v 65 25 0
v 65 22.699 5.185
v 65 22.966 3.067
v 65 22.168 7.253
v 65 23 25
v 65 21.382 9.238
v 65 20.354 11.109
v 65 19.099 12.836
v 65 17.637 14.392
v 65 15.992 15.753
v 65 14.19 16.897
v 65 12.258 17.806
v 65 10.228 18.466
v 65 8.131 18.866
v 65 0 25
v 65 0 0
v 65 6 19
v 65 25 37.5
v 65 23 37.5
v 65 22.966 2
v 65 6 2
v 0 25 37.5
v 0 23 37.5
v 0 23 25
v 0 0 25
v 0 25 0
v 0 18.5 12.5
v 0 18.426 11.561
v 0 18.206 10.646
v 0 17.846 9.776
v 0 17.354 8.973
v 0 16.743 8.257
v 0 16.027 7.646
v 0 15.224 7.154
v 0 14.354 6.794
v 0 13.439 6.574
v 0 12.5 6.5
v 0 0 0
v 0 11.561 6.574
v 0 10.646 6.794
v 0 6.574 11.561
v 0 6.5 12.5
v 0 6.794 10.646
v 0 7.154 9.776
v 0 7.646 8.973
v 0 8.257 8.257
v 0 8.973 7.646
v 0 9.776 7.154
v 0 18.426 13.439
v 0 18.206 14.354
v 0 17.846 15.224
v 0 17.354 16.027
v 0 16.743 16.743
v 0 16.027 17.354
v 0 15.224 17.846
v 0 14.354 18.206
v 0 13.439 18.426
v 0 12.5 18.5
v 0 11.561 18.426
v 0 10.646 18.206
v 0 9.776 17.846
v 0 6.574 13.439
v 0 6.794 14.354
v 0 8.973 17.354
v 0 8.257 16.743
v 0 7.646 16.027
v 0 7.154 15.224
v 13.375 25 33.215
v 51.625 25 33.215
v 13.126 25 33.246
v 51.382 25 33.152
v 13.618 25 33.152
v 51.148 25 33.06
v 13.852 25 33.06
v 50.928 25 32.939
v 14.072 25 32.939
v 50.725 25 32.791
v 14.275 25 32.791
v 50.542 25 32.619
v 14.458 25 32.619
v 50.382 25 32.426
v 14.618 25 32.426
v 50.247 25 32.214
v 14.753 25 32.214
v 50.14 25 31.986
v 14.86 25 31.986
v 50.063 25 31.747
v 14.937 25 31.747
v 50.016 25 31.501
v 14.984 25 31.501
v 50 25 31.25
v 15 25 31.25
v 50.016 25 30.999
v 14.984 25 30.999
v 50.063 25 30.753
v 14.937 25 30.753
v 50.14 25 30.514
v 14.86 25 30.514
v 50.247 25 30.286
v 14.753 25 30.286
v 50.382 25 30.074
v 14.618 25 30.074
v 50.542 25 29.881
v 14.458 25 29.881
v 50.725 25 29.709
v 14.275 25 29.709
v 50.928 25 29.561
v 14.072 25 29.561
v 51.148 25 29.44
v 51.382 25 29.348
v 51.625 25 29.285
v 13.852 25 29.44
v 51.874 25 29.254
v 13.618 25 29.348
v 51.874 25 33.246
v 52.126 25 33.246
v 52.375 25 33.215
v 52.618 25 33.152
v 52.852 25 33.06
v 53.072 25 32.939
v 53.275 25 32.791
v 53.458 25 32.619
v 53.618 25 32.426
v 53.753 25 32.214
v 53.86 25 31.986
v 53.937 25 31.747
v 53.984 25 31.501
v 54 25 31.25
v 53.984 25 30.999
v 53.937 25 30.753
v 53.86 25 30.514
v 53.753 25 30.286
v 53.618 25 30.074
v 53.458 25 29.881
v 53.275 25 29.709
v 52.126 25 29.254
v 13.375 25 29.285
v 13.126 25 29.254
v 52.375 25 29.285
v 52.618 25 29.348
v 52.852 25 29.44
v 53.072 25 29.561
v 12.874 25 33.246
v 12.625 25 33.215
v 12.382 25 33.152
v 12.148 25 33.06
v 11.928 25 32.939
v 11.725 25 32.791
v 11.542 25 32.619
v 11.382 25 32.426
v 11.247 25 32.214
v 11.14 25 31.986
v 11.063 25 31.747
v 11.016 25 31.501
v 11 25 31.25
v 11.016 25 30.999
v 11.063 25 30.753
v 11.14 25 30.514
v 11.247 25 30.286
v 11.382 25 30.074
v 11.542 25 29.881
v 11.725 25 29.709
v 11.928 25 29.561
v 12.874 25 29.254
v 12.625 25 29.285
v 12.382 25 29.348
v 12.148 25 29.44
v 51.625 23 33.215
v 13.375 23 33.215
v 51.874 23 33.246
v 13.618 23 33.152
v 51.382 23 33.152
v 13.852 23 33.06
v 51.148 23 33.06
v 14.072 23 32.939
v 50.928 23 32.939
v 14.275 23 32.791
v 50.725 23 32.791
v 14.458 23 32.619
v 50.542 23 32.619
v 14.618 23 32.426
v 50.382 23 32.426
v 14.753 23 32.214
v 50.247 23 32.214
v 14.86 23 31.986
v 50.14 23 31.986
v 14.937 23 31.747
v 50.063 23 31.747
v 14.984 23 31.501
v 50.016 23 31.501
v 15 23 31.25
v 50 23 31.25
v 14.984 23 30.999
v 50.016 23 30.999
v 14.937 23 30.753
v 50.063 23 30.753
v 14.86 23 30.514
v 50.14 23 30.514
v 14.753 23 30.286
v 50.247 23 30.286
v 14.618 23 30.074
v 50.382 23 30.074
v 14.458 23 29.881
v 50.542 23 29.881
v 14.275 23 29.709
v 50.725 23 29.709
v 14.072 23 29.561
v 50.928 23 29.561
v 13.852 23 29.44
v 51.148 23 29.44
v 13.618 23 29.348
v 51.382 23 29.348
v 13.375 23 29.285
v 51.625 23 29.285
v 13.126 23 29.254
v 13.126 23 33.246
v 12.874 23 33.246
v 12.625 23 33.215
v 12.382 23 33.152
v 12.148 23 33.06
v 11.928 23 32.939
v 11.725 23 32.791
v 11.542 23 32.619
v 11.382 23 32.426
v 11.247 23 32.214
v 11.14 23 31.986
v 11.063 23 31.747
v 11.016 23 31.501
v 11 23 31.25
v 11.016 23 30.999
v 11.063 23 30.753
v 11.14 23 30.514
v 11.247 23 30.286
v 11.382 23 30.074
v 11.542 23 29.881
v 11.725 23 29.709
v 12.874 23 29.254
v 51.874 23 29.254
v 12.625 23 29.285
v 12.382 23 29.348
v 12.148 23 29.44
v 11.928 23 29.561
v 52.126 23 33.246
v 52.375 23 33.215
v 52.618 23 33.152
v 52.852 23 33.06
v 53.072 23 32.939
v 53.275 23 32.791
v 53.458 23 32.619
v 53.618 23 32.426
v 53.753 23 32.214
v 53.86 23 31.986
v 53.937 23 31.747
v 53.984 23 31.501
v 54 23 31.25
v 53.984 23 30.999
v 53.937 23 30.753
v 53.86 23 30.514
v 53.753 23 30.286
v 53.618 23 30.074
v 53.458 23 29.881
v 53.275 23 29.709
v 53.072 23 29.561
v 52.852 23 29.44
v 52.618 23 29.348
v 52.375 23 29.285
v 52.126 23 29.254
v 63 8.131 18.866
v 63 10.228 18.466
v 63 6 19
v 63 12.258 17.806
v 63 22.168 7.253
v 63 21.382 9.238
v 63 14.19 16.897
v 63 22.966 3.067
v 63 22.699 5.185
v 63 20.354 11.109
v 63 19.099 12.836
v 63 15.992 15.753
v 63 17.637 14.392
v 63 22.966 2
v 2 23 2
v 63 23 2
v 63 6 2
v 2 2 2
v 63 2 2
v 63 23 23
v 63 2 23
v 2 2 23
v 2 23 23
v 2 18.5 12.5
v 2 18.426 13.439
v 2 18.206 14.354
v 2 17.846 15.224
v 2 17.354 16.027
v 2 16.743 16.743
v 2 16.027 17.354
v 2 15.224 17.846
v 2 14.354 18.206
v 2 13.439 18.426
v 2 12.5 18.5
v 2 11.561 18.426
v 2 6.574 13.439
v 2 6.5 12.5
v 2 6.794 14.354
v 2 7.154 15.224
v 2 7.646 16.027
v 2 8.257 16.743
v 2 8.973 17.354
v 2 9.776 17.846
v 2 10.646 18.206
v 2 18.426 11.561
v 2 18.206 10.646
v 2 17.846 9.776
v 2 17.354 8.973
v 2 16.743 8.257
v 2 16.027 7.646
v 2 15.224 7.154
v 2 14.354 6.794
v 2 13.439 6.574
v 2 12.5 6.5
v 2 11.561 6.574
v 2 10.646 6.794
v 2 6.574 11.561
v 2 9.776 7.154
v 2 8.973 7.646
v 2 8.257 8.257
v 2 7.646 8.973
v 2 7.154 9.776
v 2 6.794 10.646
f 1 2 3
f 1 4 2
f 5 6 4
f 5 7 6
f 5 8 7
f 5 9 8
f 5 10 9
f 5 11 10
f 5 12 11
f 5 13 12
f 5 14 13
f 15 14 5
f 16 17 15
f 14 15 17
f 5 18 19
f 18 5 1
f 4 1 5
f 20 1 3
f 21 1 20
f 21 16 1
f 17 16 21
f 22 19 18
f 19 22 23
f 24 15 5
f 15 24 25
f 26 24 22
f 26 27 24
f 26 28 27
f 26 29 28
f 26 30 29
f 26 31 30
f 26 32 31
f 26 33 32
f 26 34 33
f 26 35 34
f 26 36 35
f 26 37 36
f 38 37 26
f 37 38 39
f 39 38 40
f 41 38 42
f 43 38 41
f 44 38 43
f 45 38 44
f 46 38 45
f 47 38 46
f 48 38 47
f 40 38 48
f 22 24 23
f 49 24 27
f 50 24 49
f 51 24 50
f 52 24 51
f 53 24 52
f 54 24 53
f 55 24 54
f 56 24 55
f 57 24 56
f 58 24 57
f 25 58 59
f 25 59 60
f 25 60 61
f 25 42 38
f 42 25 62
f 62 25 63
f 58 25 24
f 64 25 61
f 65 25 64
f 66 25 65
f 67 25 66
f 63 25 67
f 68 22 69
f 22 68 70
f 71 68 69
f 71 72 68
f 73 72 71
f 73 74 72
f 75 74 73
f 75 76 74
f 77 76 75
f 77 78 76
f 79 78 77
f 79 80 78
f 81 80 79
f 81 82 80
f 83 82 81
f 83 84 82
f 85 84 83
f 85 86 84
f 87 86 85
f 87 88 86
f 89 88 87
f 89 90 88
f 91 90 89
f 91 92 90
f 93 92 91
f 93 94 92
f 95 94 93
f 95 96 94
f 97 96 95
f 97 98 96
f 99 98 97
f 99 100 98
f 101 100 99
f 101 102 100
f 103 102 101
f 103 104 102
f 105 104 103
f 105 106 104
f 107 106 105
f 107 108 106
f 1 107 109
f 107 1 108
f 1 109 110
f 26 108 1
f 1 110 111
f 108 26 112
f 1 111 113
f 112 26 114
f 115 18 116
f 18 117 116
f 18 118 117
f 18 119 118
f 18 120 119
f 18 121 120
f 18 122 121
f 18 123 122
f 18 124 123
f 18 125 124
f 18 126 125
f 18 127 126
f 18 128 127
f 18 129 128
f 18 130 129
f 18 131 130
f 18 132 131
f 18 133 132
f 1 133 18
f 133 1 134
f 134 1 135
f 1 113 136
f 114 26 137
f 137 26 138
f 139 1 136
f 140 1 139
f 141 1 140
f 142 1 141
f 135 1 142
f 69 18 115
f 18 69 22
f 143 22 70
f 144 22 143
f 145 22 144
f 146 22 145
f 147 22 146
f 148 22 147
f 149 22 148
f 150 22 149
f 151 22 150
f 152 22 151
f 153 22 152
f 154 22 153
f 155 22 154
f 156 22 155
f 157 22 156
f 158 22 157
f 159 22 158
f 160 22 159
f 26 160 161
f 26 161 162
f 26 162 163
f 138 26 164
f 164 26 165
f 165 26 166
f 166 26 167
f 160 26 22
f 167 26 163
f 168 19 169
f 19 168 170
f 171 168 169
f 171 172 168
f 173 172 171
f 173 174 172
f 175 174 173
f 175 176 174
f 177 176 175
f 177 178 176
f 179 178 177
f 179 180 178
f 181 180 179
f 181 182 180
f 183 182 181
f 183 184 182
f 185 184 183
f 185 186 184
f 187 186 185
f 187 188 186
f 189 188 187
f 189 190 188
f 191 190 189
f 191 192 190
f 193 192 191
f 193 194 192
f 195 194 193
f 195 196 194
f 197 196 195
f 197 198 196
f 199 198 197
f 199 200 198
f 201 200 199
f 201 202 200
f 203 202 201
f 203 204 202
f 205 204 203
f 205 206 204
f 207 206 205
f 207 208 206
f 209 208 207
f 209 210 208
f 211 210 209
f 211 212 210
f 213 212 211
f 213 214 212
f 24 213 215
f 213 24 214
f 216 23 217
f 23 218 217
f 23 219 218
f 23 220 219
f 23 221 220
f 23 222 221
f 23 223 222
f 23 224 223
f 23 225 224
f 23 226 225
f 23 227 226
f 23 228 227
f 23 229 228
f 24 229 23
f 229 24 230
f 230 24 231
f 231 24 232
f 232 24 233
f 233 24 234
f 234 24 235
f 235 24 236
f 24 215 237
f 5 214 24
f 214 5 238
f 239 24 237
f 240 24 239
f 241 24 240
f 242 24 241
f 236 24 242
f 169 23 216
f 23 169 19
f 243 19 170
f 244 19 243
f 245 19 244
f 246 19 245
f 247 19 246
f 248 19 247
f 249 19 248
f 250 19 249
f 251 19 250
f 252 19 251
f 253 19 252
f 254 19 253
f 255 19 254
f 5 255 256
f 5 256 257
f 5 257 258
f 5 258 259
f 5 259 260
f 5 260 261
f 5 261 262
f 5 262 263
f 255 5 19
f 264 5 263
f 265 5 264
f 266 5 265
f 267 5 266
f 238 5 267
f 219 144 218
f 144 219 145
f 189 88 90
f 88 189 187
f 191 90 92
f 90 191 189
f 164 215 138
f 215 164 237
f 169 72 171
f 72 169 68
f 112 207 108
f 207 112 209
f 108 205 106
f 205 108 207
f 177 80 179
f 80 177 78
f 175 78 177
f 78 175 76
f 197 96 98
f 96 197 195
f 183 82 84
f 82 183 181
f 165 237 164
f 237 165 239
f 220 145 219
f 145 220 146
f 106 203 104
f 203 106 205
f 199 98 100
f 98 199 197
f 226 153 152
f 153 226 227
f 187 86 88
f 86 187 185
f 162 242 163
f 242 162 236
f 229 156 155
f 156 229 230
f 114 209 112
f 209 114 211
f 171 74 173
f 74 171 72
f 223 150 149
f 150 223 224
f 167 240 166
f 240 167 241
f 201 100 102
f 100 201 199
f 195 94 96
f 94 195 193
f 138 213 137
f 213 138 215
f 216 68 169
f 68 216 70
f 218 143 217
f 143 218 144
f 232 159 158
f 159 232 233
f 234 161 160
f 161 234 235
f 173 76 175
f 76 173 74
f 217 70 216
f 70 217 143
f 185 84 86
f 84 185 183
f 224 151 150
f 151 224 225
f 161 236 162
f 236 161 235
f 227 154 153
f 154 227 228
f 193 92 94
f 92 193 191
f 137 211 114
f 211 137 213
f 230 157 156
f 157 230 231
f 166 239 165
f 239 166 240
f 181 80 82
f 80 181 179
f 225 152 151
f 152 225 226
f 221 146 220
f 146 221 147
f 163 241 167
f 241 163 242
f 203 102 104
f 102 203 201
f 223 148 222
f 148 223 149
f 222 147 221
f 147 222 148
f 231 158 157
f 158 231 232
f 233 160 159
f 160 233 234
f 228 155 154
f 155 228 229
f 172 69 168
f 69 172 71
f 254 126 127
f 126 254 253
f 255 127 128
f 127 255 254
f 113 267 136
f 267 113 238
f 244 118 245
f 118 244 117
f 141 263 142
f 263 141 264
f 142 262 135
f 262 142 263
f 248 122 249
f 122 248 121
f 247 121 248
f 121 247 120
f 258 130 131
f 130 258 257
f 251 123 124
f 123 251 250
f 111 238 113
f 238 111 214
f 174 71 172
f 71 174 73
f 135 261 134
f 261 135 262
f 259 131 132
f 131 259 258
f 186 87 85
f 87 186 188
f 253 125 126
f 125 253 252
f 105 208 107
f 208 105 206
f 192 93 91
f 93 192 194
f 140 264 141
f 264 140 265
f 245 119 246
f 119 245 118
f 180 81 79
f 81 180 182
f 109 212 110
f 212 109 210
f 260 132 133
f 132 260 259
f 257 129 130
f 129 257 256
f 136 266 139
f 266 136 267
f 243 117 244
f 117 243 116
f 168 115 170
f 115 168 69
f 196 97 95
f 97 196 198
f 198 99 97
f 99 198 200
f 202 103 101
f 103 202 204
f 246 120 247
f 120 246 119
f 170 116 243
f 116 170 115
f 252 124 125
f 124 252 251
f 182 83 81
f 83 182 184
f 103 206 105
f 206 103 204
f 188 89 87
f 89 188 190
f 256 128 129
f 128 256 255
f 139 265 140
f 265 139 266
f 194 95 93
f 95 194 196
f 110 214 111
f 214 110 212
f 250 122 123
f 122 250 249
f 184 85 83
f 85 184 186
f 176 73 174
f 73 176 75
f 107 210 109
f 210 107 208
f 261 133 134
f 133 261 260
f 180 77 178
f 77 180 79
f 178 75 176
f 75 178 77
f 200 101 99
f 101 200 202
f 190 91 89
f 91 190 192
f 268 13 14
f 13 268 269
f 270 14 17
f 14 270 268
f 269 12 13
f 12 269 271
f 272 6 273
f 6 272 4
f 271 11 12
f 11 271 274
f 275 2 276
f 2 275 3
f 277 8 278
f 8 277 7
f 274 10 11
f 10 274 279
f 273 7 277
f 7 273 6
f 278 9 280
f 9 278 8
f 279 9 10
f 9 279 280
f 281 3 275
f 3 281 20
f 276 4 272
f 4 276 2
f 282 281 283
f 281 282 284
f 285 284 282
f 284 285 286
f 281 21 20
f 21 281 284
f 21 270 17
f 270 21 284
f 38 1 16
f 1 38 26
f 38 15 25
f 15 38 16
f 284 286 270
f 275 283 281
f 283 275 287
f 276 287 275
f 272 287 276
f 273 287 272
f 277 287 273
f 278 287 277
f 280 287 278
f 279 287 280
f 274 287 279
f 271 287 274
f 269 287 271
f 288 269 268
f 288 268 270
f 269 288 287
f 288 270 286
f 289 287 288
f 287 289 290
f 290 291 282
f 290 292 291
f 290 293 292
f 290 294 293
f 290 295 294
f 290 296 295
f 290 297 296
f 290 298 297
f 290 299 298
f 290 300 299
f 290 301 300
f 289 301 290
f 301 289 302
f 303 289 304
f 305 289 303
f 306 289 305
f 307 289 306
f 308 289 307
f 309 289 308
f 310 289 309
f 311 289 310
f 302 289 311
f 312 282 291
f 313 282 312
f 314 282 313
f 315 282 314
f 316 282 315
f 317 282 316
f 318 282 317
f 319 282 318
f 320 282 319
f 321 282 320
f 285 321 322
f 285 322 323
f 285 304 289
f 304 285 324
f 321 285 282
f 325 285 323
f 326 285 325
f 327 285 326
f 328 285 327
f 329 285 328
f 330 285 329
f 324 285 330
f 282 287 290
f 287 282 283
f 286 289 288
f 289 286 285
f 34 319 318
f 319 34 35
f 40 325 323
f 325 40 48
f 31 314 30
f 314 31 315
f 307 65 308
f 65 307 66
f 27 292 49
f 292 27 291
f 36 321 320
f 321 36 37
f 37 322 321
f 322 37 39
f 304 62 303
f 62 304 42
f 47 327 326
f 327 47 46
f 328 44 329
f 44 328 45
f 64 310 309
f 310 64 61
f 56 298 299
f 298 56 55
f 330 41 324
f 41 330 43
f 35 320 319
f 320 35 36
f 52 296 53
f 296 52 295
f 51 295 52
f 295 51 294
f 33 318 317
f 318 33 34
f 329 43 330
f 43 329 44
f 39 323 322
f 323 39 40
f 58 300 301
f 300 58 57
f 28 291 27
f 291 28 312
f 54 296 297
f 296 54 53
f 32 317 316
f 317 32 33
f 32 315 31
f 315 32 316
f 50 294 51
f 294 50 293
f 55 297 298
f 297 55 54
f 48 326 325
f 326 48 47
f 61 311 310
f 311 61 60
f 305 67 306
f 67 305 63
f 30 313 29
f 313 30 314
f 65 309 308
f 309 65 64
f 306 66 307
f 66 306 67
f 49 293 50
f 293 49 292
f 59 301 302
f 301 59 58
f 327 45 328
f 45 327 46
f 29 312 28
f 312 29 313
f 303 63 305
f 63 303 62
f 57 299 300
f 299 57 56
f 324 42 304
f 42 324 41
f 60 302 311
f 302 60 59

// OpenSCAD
/**

Sensio aluminium profile LED termination
@idnorton

Licenced as Creative Commons Attribution Non Commercial 3.0
See https://creativecommons.org/licenses/by-nc/3.0/

Specifically you may not sell the design or products using the design.
You're welcome to use the design to build things for your own use :)

**/

d = 34;

x = 65;
y = 25;
z = 25;

thickness = 2;

difference() {
    cube([x, y, z]);

    // Hollow out the inside
    translate([2, 2, 2]) {
        cube([x - (2*thickness), y - (2 * thickness), z - (2 * thickness)]);
    }

    // Hole for extrusion
    translate([x, y - (d/2) - thickness, 2]) {
        rotate([0,270,0]) {
            quadrant();
        }
    }

    // Cable gland
    translate([0, y/2, z/2]) {
        rotate([0, 90, 0]) {
            cylinder(h = 50, d = 12, $fn=40);
        }
    }
}

difference() {
    // Mounting plate
    translate([0, y-thickness, z]) {
        cube([x, thickness, z/2]);
    }

    // Mounting holes
    translate([x*0.2, y, z * 1.25]) {
        rotate([90, 0, 0]) {
            cylinder(h = 10, d = 4, $fn = 50);
        }
    }

    // Mounting holes
    translate([x*0.8, y, z * 1.25]) {
        rotate([90, 0, 0]) {
            cylinder(h = 10, d = 4, $fn = 50);
        }
    }
}

module quadrant() {
    intersection() {
        cylinder(h = 10, d = d, $fn = 50);
        cube(d/2);
    }
}
